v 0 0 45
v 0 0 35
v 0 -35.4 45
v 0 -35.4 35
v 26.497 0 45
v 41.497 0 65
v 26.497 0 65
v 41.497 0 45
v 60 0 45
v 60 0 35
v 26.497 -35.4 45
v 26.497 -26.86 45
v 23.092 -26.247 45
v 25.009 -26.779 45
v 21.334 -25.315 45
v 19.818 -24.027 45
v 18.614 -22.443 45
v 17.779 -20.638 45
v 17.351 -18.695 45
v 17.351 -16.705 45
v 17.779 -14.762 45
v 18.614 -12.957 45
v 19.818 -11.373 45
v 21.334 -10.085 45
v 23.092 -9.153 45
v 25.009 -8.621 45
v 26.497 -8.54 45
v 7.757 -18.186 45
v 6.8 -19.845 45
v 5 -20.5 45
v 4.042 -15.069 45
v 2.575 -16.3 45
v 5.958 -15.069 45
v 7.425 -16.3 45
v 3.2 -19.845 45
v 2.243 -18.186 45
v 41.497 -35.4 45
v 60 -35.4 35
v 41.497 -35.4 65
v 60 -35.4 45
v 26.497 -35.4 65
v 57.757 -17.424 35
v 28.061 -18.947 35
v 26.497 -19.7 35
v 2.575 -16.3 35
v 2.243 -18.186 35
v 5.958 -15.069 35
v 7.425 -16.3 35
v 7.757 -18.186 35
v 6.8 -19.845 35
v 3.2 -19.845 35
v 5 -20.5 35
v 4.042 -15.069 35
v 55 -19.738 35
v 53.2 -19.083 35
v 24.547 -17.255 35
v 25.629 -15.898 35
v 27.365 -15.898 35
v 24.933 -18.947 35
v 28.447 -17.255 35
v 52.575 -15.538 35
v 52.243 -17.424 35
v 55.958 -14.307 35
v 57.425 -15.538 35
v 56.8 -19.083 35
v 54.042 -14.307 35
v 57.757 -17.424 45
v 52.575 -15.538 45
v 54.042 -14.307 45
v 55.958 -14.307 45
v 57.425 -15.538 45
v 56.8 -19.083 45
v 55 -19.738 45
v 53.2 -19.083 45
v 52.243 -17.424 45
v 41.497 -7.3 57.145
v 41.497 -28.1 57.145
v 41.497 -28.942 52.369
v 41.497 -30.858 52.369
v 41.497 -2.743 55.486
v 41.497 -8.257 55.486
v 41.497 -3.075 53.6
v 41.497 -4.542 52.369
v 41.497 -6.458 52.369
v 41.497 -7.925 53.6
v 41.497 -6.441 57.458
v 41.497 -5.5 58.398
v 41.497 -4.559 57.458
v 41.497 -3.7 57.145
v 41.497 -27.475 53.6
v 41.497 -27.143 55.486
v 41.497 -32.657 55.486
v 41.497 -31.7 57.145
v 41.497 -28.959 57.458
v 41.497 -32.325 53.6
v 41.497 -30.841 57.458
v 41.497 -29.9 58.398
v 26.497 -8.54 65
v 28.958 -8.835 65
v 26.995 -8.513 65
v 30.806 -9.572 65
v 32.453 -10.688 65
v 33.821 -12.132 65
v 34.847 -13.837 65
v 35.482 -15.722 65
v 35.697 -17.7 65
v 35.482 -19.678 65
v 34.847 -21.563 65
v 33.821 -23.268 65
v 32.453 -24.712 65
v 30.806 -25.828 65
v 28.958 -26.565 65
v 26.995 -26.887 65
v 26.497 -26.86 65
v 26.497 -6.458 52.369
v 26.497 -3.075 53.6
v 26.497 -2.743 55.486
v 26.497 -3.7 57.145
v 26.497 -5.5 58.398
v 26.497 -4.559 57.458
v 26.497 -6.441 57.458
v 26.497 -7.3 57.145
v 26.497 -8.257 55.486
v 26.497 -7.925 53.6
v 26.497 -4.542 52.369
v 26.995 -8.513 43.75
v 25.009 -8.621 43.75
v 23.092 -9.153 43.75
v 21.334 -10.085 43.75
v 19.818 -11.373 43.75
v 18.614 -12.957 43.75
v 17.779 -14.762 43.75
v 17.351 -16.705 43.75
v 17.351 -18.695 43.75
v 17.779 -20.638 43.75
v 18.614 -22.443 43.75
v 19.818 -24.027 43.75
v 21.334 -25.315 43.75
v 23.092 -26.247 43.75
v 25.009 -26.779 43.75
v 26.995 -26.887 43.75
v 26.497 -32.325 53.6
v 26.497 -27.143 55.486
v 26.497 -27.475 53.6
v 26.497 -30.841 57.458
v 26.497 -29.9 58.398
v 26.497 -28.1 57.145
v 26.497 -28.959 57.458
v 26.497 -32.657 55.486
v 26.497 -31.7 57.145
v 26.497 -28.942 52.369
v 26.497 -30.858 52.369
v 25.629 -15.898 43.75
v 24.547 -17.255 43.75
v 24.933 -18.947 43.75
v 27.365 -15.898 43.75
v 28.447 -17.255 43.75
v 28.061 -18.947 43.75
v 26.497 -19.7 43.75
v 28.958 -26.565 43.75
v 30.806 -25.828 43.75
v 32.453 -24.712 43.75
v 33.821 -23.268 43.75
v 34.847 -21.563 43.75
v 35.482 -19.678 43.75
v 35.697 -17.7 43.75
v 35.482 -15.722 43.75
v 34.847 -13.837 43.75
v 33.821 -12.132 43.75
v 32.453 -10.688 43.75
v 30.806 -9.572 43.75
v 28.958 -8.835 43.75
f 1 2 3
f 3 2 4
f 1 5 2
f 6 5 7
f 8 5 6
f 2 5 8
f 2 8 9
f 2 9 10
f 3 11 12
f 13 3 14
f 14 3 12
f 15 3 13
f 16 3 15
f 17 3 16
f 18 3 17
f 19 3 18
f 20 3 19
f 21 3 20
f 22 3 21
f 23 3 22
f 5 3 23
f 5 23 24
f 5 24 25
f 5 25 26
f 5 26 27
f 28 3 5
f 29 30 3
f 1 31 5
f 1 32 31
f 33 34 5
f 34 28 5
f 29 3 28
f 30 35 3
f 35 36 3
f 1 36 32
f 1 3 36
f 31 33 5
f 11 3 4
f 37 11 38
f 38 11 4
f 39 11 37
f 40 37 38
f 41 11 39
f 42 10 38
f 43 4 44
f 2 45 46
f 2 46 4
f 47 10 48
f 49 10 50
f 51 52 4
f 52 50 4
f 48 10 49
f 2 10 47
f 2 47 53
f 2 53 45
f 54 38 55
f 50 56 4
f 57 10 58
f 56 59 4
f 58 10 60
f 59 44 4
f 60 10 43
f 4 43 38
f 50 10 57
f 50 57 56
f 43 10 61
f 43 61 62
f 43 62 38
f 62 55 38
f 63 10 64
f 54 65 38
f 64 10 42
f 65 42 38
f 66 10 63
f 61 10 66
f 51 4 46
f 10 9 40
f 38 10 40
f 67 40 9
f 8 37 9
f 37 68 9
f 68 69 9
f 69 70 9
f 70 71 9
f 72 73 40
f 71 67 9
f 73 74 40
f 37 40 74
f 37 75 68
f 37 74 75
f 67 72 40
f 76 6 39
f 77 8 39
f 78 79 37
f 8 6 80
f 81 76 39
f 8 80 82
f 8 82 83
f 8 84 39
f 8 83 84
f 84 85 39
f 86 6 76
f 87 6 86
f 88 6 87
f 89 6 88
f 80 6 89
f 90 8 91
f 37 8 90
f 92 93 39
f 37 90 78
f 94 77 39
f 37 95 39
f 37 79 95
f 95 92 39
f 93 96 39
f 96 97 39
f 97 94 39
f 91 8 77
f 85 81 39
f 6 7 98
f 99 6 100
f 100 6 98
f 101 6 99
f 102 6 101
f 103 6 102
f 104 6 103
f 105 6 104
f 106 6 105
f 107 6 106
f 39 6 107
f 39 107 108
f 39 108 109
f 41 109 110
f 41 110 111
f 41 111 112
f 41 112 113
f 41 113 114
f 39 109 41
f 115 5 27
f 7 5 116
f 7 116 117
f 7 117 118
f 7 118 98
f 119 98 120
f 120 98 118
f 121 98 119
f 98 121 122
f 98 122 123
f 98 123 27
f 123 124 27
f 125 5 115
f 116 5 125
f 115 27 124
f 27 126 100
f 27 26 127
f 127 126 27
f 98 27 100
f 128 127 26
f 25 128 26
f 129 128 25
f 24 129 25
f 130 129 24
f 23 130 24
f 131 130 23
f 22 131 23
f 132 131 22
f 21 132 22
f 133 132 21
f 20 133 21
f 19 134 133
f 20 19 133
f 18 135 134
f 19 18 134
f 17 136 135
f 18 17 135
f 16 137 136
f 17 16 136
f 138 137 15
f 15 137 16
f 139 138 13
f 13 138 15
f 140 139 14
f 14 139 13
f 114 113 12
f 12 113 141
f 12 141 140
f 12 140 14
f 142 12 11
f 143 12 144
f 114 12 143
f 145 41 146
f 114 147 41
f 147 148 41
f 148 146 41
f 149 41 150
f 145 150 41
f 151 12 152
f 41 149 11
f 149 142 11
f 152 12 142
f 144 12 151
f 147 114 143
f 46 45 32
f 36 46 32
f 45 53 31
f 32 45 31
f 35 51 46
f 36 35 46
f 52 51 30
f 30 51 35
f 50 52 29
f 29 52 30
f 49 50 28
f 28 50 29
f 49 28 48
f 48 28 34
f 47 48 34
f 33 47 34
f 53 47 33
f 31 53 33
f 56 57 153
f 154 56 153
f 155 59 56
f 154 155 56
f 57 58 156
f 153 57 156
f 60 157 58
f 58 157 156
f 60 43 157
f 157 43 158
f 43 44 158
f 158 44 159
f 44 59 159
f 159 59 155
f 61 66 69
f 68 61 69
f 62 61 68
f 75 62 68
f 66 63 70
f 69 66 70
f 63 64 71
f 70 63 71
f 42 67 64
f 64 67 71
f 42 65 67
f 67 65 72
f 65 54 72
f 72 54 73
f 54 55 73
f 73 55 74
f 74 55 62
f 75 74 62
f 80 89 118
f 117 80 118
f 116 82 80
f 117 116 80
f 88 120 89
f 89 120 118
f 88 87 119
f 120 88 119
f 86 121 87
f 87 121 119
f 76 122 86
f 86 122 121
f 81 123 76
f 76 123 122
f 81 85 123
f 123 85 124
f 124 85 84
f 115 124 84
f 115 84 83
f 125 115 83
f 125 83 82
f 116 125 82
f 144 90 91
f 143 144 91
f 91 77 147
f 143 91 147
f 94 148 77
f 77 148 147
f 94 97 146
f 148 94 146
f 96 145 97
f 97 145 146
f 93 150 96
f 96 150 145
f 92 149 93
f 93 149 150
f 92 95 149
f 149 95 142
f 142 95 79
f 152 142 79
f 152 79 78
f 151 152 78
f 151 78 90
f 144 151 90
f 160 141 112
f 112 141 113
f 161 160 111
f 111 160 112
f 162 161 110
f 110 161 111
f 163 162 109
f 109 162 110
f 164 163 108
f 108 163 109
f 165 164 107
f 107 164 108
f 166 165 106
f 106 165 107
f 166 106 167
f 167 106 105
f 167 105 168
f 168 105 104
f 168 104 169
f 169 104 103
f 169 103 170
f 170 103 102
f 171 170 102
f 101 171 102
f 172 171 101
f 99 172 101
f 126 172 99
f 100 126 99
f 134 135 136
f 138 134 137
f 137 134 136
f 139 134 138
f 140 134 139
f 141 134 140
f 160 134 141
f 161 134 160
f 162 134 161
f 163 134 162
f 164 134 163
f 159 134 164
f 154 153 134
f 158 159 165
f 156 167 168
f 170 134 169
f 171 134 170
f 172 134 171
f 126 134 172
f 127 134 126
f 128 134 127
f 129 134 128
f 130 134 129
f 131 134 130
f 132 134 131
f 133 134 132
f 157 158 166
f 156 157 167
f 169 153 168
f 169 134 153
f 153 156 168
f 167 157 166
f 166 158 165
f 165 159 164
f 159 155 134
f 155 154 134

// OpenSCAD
// Parametric Mendel Extruder in SCAD by Vik, based on SCAD conversion by rbisping
// vik@diamondage.co.nz, 2010-01-02
// Pinch bearing & filament size is parametric. Also added pointy tops to horizontal holes.

m4_clearance_rad=2.6;
bearing_clearance_rad=8;
filament_rad=1.6;		// Includes some clearance.
ptfe_rad=9.2;			// 18mm dia PTFE spacer. May well be 16mm rad for you.

nut_rad = 8.3;			// M8 nut on the bowden cable
nut_rad = 12.7;			// nut on the bowden cable
extruder_thick=nut_rad*2+10;
extruder_height=10;
extruder_clamp_thick=30;
filament_x_offset=26.497;

module box(w,h,d) {
	scale ([w,h,d]) cube(1, true);
}

module roundedBox(w,h,d,f){
	difference(){
		box(w,h,d);
		translate([-w/2,h/2,0]) cube(w/(f/2),true);
		translate([w/2,h/2,0]) cube(w/(f/2),true);
		translate([-w/2,-h/2,0]) cube(w/(f/2),true);
		translate([w/2,-h/2,0]) cube(w/(f/2),true);
	}
	translate([-w/2+w/f,h/2-w/f,-d/2]) cylinder(d,w/f, w/f);
	translate([w/2-w/f,h/2-w/f,-d/2]) cylinder(d,w/f, w/f);
	translate([-w/2+w/f,-h/2+w/f,-d/2]) cylinder(d,w/f, w/f);
	translate([w/2-w/f,-h/2+w/f,-d/2]) cylinder(d,w/f, w/f);
}
module hexagon(height, depth) {
	boxWidth=height/1.75;
		union(){
			box(boxWidth, height, depth);
			rotate([0,0,60]) box(boxWidth, height, depth);
			rotate([0,0,-60]) box(boxWidth, height, depth);
		}
}

module m4_hole_horiz(l) {
	cylinder(l,m4_clearance_rad+0.2,m4_clearance_rad+0.2,center=true);
	translate ([m4_clearance_rad*0.6,0,0]) rotate ([0,0,45])
		cube([m4_clearance_rad,m4_clearance_rad,l],center=true);
}

module m8_hole_horiz(l) {
	cylinder(l,m8_clearance_rad,m4_clearance_rad,center=true);
	translate ([m8_clearance_rad*0.6,0,0]) rotate ([0,0,45])
		cube([m8_clearance_rad,m8_clearance_rad,l],center=true);
}

module m4_hole_vert(l) {
	cylinder(l,m4_clearance_rad+0.2,m4_clearance_rad+0.2,center=true);
}

module m6_hole_horiz(l) {
	cylinder(l,m6_clearance_rad,m6_clearance_rad,center=true);
	translate ([m6_clearance_rad*0.6,0,0]) rotate ([0,0,45])
		cube([m6_clearance_rad,m6_clearance_rad,l],center=true);
}
module m8_hole_horiz(l) {
	cylinder(l,m8_clearance_rad,m8_clearance_rad,center=true);
	translate ([m8_clearance_rad*0.6,0,0]) rotate ([0,0,45])
		cube([m8_clearance_rad,m8_clearance_rad,l],center=true);
}

// No .4 3/4 inch countersunk woodscrew (includes a lot of headspace)
module small_woodscrew() {
	rotate ([0,0,30]) {
		translate ([0,0,-7.5]) cylinder(h=3,r1=0.2,r2=1.8,center=true);
		cylinder(h=12,r1=1.8,r2=2.0,center=true);
		translate([0,0,6]) cylinder(h=4, r1=2.0, r2=4.0);
	}
}

// For nut cavities, "height" is the max distance between two points on the hex.
module m4_nut_cavity(l) {
	hexagon(height=8,depth=l);
}

module m8_nut_cavity(l) {
	hexagon(height=14,depth=l);
}

module m4_hole_vert_with_hex(l) {
	union () {
		m4_hole_vert(l);
		translate ([0,0,-l/4]) rotate ([0,0,30]) m4_nut_cavity(l/2);
	}
}

module m4_hole_horiz_with_hex(l) {
	union () {
		m4_hole_horiz(l);
		translate ([0,0,-l/4]) rotate ([0,0,0]) m4_nut_cavity(l/2);
	}
}

module m3_slot() {
	cube([7.149,extruder_thick*2.1,3.4],center=true);
}

filament_oversize=0.4;	// If your extruder is perfect this can be zero :)
module filament_cavity() {
	union () {
		cylinder(extruder_height+2,filament_rad+filament_oversize,filament_rad+filament_oversize,center=true);
	}
}

module pinchwheel()
{
translate([-40,10,0])rotate(90,[1,0,0])
{
difference()
	{
	union()
		{
		// Main block of the thing.
       		translate([30,extruder_thick/2,extruder_height/2+10])cube([60,extruder_thick,extruder_height], center = true);
		// PTFE holder (for woodscrews instead of epoxy)
		translate([filament_x_offset,0,-10])cube([15,extruder_thick,20], center = false);
		}
	union()
		{
translate([filament_x_offset,extruder_thick/2,extruder_height/2+11])rotate([0,0,90]) filament_cavity();

		// Horizontal M4 holes
		translate([5,extruder_thick/2,extruder_height/2+10])rotate([0,0,90]) m4_hole_vert(extruder_height*1.1);
		translate([55,extruder_thick/2.09,extruder_height/2+10])rotate([0,0,90]) m4_hole_vert(extruder_height*1.1);

		// 1/2 PTFE barrel clamp
		#translate([filament_x_offset,extruder_thick/2,0]) rotate ([90,0,0]) rotate([90,0,0])cylinder(h=22.5,r=ptfe_rad,center=true);
		
		// M4 thermal barrier barrel clamp holes
		translate([filament_x_offset,5.5,0]) rotate([0,90,0]) m4_hole_horiz(50);
		translate([filament_x_offset,extruder_thick-5.5,0]) rotate([0,90,0]) m4_hole_horiz(50);
		
		}
	}
}
}

// Put it in X+ve, Y+ve
rotate([90,0,0])translate ([40,45,0]) pinchwheel();
